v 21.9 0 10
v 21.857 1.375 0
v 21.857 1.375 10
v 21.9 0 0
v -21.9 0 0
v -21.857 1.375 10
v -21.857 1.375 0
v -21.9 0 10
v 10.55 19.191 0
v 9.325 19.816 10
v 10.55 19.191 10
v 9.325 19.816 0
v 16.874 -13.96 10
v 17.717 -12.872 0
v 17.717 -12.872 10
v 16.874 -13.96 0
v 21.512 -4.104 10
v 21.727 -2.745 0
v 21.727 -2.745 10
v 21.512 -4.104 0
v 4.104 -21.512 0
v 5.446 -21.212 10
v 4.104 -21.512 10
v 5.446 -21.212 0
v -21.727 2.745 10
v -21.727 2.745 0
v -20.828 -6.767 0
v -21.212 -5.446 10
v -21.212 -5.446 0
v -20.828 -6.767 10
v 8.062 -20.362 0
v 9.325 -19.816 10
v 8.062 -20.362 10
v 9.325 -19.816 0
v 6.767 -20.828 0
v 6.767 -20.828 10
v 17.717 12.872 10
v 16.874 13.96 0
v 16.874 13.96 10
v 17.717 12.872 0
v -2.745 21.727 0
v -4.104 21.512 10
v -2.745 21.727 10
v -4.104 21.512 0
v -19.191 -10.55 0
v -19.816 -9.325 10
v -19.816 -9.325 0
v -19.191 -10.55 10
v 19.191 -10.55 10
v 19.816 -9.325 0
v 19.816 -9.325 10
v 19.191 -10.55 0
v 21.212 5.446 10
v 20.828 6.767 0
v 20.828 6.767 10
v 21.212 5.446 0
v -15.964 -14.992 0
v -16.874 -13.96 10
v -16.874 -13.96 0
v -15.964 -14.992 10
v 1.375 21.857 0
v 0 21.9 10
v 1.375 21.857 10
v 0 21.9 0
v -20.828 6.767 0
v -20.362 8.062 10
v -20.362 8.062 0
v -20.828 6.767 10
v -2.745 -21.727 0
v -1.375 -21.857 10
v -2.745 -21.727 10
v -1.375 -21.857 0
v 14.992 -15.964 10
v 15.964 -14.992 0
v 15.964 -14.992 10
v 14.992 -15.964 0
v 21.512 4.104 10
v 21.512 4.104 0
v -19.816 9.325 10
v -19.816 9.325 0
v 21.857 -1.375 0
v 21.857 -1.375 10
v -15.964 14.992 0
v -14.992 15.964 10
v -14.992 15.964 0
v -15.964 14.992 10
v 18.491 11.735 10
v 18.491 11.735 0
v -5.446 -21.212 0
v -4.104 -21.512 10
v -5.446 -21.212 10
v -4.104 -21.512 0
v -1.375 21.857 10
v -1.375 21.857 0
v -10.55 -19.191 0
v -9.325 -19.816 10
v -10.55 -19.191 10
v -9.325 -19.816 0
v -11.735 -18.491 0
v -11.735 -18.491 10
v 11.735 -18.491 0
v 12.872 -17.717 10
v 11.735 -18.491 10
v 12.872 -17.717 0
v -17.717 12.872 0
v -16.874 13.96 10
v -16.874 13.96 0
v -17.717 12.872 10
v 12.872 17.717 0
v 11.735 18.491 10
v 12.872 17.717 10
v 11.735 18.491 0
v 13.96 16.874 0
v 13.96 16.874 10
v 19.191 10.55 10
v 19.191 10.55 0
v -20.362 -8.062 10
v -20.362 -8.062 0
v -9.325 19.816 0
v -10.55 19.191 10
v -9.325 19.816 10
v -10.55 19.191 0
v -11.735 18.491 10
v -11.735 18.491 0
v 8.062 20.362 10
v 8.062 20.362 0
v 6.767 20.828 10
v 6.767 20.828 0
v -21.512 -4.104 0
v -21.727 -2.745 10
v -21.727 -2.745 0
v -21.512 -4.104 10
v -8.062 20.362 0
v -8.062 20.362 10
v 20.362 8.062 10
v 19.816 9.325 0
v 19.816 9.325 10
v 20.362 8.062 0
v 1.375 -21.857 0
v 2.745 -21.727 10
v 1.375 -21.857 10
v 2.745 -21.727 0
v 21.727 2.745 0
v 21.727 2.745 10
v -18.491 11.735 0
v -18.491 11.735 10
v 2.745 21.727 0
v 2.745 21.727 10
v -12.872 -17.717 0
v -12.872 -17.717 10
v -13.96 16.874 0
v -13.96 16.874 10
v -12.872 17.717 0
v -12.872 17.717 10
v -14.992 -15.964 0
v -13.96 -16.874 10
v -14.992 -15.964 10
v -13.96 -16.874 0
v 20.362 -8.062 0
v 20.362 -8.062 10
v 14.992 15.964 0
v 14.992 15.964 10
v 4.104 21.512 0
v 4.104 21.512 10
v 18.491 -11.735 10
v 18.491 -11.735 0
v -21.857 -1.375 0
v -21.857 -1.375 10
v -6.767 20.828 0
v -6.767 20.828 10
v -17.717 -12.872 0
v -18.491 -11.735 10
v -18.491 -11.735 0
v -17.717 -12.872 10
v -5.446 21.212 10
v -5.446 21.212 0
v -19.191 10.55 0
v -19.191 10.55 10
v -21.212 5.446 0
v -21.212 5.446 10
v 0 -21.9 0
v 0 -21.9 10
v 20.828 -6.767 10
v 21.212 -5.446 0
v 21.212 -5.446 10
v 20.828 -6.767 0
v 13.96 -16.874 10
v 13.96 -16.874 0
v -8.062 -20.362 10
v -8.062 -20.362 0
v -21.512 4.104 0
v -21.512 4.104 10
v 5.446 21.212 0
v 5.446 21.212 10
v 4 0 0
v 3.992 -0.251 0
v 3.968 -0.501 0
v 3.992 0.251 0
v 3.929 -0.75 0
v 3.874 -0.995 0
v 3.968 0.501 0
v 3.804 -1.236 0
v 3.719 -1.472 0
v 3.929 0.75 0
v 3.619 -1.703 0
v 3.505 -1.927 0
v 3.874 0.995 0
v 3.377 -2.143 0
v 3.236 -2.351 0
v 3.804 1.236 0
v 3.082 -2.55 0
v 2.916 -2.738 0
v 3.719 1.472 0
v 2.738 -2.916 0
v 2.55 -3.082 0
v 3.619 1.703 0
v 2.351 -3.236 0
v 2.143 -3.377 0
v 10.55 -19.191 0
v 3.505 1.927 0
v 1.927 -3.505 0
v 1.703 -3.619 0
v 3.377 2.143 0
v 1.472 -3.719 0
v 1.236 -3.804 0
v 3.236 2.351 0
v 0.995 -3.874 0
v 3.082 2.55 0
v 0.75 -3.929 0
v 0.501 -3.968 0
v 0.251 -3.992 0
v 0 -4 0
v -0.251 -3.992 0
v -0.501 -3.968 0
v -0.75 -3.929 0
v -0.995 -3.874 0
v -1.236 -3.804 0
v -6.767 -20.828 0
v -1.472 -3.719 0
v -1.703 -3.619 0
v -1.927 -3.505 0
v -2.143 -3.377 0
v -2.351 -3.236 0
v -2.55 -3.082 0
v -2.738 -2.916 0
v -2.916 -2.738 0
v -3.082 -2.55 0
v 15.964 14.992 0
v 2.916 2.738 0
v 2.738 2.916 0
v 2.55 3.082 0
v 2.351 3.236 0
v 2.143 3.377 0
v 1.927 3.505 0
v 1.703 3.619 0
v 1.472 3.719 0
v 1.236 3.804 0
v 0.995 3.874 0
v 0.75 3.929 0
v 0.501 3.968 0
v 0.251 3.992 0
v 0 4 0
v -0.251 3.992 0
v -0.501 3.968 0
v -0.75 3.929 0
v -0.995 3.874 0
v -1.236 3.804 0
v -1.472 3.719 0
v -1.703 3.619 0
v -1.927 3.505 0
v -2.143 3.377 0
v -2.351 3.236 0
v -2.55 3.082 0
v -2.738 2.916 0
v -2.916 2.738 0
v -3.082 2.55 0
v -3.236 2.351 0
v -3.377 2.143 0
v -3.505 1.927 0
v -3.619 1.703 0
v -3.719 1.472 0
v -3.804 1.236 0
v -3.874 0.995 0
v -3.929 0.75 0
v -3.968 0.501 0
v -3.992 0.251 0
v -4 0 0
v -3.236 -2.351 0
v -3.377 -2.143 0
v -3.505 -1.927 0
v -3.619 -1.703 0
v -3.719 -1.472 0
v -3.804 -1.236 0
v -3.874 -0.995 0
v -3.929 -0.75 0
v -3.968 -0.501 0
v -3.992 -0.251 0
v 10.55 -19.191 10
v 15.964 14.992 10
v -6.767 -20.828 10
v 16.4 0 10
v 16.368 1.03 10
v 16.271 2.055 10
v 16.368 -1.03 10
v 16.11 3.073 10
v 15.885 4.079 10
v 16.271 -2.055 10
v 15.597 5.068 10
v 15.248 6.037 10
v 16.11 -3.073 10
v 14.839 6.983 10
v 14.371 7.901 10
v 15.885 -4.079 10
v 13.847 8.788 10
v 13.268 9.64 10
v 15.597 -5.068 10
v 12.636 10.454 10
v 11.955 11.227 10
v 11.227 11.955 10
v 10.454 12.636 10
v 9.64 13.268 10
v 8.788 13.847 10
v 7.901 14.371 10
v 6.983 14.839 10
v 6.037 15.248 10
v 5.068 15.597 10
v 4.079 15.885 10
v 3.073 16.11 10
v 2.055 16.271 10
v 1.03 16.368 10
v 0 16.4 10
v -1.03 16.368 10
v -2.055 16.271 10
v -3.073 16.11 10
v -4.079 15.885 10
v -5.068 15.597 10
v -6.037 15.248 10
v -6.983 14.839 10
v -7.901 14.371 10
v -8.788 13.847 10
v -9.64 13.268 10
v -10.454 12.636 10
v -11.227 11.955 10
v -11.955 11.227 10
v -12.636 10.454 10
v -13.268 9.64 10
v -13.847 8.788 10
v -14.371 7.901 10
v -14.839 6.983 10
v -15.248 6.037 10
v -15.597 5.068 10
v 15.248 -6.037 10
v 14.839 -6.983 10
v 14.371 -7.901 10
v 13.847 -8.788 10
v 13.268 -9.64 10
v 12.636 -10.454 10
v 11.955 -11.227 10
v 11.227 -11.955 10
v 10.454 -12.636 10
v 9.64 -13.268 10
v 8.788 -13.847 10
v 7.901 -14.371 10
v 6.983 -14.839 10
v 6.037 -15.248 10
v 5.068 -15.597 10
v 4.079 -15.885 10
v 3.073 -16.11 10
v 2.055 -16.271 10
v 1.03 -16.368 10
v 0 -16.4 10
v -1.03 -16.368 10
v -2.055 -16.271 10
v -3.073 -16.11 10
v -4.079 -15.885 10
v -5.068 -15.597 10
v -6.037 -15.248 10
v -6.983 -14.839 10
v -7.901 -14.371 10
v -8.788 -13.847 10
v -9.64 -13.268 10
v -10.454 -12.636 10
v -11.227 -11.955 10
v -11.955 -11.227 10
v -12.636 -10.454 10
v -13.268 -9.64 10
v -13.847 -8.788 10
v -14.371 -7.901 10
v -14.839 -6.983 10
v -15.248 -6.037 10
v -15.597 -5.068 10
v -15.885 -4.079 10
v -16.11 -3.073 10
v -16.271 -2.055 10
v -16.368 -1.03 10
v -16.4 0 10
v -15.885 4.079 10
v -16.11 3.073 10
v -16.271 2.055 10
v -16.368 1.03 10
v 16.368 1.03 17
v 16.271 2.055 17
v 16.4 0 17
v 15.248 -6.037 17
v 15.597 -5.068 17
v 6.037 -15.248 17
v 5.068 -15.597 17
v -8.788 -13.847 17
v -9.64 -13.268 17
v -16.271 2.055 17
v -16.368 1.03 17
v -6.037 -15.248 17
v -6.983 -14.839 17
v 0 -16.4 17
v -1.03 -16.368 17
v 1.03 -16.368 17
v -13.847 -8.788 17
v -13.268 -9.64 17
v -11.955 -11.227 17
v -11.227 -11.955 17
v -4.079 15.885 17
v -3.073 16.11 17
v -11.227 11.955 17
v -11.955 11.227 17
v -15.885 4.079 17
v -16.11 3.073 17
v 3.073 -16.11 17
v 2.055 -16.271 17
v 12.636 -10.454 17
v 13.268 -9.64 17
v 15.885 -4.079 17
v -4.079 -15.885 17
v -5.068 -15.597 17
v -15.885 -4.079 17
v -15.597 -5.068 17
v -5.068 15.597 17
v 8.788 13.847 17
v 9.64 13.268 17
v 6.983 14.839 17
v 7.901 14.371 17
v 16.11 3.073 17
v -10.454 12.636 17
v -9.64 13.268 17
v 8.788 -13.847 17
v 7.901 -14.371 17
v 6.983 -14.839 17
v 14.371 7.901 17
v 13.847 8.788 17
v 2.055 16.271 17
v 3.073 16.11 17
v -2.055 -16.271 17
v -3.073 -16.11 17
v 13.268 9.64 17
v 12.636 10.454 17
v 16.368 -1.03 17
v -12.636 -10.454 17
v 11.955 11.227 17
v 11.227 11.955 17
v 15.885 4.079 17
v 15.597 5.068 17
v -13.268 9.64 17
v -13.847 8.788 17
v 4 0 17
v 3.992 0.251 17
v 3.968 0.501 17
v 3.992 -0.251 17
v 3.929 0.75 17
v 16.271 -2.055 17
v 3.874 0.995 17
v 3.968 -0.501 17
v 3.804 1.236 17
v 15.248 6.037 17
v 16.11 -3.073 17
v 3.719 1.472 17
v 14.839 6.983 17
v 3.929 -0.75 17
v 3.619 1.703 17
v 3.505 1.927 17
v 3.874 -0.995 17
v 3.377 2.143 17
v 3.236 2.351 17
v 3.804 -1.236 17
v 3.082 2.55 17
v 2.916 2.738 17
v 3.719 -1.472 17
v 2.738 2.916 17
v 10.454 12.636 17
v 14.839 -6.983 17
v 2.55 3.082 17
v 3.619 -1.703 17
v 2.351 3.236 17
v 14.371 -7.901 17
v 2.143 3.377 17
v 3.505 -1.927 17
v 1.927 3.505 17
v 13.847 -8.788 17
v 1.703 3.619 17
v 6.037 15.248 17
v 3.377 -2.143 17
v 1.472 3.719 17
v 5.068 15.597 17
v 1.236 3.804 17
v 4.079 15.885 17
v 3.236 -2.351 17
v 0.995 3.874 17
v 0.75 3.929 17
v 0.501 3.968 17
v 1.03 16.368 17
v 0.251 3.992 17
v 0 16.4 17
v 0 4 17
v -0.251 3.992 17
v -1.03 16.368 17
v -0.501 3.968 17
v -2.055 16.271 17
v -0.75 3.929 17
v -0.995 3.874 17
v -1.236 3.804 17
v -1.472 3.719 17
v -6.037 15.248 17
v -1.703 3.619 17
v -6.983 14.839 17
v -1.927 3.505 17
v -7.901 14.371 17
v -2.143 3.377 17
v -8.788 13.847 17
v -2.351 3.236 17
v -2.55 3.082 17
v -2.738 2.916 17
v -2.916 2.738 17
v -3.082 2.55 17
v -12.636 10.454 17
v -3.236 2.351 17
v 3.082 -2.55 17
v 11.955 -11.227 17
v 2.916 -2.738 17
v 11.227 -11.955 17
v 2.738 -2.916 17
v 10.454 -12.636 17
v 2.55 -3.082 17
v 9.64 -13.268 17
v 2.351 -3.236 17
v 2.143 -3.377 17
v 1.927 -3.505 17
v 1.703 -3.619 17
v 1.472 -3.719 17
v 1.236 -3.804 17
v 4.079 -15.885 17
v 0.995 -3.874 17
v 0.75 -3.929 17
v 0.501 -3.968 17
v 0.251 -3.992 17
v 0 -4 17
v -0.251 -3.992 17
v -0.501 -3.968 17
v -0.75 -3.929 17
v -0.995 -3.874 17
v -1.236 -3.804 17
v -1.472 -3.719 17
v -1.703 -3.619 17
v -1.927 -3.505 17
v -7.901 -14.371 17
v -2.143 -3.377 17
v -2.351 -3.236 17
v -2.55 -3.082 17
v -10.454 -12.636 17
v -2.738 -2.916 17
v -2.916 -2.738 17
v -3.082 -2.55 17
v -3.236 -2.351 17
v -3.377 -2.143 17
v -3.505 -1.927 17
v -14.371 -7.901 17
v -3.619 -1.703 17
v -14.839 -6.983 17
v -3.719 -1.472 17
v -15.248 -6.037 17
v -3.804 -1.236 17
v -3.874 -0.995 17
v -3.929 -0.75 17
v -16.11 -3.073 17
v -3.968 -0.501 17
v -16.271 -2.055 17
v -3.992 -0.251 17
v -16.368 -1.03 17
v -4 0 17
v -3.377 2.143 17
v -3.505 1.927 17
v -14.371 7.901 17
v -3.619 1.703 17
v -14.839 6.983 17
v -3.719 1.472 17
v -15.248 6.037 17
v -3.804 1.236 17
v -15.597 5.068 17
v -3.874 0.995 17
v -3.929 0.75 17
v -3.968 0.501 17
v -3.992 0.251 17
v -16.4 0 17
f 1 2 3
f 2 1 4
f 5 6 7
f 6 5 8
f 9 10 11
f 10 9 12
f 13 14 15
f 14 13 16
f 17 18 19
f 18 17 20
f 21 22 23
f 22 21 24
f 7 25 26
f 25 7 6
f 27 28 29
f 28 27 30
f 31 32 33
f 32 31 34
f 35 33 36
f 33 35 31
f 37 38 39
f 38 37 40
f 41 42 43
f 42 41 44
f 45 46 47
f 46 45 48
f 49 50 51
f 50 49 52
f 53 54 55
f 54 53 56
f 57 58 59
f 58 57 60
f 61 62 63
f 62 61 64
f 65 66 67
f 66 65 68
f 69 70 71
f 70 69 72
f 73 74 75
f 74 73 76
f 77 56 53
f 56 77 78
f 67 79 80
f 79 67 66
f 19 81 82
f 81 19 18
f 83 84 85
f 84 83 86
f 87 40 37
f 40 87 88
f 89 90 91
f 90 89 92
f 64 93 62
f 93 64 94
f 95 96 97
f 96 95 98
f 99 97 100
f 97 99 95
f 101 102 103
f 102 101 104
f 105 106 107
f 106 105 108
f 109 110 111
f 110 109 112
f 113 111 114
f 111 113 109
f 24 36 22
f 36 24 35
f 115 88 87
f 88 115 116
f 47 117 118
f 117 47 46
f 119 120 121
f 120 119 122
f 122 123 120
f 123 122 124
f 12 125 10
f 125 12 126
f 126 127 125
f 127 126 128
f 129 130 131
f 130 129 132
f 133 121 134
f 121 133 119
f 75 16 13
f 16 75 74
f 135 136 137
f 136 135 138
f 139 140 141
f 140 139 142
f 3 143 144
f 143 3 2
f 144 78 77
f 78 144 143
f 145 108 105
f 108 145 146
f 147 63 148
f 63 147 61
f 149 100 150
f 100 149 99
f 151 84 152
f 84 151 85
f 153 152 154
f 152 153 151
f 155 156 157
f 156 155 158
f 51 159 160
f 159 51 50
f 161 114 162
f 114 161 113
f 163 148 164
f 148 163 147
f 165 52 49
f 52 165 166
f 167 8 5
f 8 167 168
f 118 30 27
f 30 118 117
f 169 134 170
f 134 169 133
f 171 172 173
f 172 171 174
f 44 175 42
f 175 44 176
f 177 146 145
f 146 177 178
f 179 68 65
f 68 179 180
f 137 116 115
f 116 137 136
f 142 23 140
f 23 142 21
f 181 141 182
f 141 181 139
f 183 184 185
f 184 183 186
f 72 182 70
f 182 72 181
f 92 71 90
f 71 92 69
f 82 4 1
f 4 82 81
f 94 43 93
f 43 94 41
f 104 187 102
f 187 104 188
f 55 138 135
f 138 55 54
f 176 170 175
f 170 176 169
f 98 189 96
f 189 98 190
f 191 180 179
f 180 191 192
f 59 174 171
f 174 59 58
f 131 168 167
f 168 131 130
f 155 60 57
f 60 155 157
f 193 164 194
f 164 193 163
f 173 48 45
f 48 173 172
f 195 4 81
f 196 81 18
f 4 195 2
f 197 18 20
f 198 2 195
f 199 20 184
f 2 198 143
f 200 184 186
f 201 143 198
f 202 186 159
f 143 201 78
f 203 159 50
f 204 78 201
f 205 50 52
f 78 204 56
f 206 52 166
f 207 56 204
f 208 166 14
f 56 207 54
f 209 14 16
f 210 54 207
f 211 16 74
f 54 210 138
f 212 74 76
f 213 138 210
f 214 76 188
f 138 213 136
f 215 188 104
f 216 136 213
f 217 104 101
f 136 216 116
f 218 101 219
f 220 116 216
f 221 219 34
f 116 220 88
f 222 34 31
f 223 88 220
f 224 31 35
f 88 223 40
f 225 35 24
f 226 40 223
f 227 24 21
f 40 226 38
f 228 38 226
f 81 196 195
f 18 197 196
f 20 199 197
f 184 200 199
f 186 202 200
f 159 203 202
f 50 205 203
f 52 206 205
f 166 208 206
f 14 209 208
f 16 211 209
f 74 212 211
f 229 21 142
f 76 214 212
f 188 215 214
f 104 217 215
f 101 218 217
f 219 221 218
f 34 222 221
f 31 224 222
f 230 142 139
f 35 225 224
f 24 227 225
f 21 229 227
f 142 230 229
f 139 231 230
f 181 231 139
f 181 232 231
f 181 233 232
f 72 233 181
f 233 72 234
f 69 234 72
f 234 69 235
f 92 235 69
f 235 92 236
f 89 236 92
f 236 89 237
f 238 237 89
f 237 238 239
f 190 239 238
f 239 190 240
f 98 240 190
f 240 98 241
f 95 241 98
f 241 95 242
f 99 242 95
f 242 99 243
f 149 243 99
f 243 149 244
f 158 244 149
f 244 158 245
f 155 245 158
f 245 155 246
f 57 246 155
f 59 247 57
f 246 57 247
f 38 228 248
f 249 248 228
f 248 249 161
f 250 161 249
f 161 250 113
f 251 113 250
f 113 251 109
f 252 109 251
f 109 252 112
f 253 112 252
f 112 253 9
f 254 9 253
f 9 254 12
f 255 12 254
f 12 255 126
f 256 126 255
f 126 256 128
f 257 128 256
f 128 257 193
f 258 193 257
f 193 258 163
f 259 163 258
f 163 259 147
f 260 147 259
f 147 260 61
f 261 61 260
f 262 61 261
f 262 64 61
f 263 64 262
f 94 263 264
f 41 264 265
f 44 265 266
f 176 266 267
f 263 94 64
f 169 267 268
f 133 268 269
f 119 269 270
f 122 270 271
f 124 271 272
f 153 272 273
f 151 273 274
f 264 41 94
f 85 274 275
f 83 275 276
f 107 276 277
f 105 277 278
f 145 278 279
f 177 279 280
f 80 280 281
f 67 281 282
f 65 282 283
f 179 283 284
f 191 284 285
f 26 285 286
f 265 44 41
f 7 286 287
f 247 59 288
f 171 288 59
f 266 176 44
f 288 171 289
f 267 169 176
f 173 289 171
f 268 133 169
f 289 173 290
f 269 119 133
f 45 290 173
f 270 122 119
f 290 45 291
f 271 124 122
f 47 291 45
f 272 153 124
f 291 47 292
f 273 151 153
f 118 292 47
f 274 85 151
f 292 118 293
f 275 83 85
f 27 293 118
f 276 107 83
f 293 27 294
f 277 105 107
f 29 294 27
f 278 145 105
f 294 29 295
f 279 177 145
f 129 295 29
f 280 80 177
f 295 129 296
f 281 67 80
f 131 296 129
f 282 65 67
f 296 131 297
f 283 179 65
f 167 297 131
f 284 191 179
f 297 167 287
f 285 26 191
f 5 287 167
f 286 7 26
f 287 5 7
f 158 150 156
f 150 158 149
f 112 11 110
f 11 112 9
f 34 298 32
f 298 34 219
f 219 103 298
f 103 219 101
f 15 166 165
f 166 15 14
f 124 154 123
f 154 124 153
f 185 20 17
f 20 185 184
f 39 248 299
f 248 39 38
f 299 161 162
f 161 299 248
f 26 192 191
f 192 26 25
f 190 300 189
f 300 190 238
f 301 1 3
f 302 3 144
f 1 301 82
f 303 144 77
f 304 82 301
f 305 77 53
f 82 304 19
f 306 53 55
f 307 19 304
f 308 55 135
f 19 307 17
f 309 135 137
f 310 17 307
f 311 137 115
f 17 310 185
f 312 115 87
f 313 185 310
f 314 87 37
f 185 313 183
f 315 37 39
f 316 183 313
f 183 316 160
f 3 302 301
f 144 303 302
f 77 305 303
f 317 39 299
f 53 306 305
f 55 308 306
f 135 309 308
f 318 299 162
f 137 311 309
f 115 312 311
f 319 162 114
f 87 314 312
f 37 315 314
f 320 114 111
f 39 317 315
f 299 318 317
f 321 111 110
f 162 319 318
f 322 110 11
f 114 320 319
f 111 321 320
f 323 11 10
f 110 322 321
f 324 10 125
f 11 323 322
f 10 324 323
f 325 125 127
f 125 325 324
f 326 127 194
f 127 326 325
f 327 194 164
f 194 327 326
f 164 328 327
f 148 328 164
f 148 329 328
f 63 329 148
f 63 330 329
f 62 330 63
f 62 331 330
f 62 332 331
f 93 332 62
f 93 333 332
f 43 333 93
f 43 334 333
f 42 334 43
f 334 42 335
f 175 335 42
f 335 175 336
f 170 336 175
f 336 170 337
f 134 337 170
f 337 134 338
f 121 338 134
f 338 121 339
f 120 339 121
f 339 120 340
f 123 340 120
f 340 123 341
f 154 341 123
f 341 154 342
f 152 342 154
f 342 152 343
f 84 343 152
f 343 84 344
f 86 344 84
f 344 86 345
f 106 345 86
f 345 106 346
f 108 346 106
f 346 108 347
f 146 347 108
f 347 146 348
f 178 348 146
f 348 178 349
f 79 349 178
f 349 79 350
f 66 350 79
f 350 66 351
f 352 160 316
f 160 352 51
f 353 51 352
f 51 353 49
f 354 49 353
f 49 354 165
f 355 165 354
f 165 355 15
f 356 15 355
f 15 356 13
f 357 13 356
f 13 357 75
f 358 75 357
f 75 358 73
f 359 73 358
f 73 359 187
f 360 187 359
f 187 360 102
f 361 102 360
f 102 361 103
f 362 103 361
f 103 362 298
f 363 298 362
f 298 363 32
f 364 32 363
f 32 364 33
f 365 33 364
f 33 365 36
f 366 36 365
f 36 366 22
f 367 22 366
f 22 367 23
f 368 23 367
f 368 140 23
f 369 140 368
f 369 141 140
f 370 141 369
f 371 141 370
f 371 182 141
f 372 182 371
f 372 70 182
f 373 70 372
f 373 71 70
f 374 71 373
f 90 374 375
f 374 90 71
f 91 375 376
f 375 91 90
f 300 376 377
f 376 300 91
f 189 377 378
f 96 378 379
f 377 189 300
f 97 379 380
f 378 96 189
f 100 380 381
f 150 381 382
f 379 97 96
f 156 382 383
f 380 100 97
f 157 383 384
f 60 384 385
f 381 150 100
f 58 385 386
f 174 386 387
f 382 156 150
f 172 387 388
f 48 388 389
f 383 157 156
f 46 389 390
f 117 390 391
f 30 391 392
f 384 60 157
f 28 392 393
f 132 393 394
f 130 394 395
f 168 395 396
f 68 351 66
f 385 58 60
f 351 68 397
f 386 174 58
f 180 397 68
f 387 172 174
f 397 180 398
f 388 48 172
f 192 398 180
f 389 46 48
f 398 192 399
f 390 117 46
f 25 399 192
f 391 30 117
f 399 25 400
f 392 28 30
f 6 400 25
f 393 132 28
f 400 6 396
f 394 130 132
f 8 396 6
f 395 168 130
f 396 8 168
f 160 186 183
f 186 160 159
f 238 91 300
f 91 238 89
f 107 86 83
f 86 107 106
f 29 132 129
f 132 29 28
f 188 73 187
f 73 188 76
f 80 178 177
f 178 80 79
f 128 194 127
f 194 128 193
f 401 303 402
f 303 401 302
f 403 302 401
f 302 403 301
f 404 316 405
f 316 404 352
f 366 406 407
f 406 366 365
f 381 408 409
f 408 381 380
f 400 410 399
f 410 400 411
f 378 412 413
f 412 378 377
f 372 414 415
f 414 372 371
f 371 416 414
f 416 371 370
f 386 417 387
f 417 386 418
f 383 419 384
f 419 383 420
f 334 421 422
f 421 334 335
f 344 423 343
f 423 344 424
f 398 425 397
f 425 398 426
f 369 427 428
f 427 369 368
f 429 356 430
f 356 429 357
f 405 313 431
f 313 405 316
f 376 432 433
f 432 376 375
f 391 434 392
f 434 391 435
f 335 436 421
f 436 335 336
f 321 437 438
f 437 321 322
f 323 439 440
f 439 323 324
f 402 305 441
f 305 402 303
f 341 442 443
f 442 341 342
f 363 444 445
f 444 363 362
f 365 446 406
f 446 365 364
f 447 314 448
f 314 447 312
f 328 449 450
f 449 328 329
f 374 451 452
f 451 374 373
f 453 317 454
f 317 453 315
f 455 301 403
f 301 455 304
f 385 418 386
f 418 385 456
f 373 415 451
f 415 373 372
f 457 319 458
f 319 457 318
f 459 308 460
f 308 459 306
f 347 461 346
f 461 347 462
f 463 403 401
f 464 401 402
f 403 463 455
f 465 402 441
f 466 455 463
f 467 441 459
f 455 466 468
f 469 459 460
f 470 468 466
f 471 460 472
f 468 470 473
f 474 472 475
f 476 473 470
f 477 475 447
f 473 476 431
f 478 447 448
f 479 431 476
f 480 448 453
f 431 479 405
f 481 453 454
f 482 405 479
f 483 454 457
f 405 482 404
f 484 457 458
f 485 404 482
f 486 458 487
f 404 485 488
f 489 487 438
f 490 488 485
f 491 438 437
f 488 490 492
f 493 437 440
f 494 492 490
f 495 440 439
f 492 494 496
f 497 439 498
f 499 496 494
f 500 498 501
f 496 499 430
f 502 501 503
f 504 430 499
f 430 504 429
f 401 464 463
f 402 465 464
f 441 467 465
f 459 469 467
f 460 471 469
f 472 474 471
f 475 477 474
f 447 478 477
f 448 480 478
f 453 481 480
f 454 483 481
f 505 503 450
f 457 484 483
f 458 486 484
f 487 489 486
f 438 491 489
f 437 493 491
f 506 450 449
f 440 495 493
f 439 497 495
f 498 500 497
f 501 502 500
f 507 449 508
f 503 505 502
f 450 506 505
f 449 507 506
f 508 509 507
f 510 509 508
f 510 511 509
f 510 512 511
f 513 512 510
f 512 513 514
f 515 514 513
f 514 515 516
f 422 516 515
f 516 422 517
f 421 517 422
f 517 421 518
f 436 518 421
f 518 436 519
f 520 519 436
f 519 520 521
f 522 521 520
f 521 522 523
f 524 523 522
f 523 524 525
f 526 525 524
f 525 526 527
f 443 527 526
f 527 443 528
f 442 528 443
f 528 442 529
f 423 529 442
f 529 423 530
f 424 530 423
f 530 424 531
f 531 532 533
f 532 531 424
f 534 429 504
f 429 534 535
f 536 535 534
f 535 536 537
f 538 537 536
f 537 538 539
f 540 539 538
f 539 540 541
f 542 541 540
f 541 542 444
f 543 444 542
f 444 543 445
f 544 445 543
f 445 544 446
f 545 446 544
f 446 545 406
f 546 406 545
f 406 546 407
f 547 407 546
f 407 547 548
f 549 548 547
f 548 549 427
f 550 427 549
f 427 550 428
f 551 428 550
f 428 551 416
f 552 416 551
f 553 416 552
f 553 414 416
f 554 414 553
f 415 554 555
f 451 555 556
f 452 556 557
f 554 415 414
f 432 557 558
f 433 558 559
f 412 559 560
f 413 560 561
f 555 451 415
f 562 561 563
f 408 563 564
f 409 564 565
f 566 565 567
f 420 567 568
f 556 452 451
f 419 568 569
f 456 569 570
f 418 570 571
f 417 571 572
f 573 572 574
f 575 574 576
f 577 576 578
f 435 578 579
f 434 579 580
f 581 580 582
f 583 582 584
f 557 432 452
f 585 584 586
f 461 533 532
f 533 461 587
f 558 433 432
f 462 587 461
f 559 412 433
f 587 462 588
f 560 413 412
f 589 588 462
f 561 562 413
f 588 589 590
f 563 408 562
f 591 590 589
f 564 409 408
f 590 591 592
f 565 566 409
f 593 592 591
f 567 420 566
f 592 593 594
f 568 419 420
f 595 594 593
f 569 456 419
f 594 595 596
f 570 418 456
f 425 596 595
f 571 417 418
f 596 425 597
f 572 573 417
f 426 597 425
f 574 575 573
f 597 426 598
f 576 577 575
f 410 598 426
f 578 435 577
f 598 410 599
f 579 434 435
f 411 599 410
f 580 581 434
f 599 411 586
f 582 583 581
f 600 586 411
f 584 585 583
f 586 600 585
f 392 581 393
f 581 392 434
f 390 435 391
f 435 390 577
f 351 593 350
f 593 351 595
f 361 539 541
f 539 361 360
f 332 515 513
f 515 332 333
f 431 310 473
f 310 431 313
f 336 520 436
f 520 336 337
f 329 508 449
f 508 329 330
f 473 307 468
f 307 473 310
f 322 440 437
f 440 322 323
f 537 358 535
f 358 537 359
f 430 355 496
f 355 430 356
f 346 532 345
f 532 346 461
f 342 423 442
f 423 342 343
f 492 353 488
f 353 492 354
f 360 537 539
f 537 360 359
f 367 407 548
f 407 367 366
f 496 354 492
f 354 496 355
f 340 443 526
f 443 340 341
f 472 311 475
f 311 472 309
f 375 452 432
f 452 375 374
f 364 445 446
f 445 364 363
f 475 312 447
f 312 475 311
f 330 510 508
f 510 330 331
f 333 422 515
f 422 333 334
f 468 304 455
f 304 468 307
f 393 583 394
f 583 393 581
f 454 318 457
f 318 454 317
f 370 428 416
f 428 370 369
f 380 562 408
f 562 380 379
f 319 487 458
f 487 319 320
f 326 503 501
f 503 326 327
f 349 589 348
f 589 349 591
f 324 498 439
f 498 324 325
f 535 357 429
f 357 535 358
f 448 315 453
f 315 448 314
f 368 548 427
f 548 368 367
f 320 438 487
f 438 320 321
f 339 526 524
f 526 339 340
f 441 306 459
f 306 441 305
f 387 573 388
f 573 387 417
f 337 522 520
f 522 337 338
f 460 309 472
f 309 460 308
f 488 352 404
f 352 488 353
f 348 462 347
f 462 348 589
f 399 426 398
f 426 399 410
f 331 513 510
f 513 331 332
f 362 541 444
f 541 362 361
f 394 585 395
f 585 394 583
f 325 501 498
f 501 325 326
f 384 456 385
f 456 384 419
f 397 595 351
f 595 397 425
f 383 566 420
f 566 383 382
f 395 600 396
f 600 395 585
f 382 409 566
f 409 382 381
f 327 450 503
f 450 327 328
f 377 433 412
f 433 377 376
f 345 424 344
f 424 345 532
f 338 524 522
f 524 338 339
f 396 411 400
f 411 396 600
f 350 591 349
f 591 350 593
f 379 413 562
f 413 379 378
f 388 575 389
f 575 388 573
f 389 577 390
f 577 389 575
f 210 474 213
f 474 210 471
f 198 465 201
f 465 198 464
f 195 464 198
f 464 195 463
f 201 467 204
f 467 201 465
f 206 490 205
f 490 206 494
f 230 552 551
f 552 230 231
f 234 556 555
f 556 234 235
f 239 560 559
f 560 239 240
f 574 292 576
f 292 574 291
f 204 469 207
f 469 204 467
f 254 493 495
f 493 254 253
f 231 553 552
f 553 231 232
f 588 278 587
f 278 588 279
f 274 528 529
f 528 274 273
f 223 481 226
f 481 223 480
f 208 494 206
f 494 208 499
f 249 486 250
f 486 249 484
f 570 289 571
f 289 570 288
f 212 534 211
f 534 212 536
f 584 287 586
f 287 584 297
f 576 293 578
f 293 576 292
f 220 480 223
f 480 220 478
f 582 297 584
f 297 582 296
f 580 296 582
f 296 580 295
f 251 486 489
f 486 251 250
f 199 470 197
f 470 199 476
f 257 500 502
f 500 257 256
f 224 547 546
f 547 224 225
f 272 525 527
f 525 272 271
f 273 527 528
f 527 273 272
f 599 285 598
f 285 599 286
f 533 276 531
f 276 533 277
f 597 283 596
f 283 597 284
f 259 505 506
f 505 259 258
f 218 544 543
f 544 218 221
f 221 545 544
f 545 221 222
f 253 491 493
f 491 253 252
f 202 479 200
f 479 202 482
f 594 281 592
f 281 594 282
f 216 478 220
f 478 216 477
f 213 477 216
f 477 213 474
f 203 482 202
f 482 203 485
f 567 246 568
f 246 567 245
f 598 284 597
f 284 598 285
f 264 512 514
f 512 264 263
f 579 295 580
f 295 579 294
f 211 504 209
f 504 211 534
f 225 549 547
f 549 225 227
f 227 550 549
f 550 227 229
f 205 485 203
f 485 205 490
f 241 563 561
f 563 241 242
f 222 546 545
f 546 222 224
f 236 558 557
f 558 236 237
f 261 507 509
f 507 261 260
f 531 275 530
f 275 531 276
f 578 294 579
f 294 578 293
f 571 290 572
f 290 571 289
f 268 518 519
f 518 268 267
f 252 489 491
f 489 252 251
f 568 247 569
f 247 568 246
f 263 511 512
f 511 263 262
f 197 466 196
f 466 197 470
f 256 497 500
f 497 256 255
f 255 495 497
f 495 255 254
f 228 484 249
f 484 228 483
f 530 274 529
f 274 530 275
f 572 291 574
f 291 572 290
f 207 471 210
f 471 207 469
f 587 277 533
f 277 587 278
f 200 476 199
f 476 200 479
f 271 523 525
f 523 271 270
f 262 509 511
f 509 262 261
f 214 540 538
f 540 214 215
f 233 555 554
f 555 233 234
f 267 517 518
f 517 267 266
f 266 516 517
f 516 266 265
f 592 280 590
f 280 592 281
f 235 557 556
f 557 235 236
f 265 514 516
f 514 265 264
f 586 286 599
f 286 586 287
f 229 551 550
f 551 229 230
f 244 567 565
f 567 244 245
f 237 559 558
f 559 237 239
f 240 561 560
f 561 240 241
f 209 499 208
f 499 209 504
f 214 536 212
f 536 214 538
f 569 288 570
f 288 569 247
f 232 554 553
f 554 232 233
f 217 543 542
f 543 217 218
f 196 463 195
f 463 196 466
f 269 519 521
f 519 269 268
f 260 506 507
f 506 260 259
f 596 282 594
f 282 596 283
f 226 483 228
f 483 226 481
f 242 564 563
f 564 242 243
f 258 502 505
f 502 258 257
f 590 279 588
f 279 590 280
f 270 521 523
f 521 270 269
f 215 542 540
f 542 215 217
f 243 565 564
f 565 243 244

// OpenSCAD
outer_diameter = 43.8;
outer_height = 10;
inner_diameter = 32.8;
inner_height = 7;
thread_hole_diameter = 8;

module bearing_drift(out_dia, out_ht, in_dia, in_ht, th_hole_dia) {
    // lower this value if struggling to deal with the object
    $fn=100;

    // calculate the height of the hole through the drift
    function full_height() = out_ht+in_ht;

    difference() {
        union() {
        cylinder(d=out_dia, h=out_ht);
        translate([0,0,out_ht])
            cylinder(d=in_dia, h=in_ht);
    }
    #translate([0,0,0])
        cylinder(d=th_hole_dia, h=full_height());
    }
    
}

bearing_drift(outer_diameter, outer_height, inner_diameter, inner_height, thread_hole_diameter);
